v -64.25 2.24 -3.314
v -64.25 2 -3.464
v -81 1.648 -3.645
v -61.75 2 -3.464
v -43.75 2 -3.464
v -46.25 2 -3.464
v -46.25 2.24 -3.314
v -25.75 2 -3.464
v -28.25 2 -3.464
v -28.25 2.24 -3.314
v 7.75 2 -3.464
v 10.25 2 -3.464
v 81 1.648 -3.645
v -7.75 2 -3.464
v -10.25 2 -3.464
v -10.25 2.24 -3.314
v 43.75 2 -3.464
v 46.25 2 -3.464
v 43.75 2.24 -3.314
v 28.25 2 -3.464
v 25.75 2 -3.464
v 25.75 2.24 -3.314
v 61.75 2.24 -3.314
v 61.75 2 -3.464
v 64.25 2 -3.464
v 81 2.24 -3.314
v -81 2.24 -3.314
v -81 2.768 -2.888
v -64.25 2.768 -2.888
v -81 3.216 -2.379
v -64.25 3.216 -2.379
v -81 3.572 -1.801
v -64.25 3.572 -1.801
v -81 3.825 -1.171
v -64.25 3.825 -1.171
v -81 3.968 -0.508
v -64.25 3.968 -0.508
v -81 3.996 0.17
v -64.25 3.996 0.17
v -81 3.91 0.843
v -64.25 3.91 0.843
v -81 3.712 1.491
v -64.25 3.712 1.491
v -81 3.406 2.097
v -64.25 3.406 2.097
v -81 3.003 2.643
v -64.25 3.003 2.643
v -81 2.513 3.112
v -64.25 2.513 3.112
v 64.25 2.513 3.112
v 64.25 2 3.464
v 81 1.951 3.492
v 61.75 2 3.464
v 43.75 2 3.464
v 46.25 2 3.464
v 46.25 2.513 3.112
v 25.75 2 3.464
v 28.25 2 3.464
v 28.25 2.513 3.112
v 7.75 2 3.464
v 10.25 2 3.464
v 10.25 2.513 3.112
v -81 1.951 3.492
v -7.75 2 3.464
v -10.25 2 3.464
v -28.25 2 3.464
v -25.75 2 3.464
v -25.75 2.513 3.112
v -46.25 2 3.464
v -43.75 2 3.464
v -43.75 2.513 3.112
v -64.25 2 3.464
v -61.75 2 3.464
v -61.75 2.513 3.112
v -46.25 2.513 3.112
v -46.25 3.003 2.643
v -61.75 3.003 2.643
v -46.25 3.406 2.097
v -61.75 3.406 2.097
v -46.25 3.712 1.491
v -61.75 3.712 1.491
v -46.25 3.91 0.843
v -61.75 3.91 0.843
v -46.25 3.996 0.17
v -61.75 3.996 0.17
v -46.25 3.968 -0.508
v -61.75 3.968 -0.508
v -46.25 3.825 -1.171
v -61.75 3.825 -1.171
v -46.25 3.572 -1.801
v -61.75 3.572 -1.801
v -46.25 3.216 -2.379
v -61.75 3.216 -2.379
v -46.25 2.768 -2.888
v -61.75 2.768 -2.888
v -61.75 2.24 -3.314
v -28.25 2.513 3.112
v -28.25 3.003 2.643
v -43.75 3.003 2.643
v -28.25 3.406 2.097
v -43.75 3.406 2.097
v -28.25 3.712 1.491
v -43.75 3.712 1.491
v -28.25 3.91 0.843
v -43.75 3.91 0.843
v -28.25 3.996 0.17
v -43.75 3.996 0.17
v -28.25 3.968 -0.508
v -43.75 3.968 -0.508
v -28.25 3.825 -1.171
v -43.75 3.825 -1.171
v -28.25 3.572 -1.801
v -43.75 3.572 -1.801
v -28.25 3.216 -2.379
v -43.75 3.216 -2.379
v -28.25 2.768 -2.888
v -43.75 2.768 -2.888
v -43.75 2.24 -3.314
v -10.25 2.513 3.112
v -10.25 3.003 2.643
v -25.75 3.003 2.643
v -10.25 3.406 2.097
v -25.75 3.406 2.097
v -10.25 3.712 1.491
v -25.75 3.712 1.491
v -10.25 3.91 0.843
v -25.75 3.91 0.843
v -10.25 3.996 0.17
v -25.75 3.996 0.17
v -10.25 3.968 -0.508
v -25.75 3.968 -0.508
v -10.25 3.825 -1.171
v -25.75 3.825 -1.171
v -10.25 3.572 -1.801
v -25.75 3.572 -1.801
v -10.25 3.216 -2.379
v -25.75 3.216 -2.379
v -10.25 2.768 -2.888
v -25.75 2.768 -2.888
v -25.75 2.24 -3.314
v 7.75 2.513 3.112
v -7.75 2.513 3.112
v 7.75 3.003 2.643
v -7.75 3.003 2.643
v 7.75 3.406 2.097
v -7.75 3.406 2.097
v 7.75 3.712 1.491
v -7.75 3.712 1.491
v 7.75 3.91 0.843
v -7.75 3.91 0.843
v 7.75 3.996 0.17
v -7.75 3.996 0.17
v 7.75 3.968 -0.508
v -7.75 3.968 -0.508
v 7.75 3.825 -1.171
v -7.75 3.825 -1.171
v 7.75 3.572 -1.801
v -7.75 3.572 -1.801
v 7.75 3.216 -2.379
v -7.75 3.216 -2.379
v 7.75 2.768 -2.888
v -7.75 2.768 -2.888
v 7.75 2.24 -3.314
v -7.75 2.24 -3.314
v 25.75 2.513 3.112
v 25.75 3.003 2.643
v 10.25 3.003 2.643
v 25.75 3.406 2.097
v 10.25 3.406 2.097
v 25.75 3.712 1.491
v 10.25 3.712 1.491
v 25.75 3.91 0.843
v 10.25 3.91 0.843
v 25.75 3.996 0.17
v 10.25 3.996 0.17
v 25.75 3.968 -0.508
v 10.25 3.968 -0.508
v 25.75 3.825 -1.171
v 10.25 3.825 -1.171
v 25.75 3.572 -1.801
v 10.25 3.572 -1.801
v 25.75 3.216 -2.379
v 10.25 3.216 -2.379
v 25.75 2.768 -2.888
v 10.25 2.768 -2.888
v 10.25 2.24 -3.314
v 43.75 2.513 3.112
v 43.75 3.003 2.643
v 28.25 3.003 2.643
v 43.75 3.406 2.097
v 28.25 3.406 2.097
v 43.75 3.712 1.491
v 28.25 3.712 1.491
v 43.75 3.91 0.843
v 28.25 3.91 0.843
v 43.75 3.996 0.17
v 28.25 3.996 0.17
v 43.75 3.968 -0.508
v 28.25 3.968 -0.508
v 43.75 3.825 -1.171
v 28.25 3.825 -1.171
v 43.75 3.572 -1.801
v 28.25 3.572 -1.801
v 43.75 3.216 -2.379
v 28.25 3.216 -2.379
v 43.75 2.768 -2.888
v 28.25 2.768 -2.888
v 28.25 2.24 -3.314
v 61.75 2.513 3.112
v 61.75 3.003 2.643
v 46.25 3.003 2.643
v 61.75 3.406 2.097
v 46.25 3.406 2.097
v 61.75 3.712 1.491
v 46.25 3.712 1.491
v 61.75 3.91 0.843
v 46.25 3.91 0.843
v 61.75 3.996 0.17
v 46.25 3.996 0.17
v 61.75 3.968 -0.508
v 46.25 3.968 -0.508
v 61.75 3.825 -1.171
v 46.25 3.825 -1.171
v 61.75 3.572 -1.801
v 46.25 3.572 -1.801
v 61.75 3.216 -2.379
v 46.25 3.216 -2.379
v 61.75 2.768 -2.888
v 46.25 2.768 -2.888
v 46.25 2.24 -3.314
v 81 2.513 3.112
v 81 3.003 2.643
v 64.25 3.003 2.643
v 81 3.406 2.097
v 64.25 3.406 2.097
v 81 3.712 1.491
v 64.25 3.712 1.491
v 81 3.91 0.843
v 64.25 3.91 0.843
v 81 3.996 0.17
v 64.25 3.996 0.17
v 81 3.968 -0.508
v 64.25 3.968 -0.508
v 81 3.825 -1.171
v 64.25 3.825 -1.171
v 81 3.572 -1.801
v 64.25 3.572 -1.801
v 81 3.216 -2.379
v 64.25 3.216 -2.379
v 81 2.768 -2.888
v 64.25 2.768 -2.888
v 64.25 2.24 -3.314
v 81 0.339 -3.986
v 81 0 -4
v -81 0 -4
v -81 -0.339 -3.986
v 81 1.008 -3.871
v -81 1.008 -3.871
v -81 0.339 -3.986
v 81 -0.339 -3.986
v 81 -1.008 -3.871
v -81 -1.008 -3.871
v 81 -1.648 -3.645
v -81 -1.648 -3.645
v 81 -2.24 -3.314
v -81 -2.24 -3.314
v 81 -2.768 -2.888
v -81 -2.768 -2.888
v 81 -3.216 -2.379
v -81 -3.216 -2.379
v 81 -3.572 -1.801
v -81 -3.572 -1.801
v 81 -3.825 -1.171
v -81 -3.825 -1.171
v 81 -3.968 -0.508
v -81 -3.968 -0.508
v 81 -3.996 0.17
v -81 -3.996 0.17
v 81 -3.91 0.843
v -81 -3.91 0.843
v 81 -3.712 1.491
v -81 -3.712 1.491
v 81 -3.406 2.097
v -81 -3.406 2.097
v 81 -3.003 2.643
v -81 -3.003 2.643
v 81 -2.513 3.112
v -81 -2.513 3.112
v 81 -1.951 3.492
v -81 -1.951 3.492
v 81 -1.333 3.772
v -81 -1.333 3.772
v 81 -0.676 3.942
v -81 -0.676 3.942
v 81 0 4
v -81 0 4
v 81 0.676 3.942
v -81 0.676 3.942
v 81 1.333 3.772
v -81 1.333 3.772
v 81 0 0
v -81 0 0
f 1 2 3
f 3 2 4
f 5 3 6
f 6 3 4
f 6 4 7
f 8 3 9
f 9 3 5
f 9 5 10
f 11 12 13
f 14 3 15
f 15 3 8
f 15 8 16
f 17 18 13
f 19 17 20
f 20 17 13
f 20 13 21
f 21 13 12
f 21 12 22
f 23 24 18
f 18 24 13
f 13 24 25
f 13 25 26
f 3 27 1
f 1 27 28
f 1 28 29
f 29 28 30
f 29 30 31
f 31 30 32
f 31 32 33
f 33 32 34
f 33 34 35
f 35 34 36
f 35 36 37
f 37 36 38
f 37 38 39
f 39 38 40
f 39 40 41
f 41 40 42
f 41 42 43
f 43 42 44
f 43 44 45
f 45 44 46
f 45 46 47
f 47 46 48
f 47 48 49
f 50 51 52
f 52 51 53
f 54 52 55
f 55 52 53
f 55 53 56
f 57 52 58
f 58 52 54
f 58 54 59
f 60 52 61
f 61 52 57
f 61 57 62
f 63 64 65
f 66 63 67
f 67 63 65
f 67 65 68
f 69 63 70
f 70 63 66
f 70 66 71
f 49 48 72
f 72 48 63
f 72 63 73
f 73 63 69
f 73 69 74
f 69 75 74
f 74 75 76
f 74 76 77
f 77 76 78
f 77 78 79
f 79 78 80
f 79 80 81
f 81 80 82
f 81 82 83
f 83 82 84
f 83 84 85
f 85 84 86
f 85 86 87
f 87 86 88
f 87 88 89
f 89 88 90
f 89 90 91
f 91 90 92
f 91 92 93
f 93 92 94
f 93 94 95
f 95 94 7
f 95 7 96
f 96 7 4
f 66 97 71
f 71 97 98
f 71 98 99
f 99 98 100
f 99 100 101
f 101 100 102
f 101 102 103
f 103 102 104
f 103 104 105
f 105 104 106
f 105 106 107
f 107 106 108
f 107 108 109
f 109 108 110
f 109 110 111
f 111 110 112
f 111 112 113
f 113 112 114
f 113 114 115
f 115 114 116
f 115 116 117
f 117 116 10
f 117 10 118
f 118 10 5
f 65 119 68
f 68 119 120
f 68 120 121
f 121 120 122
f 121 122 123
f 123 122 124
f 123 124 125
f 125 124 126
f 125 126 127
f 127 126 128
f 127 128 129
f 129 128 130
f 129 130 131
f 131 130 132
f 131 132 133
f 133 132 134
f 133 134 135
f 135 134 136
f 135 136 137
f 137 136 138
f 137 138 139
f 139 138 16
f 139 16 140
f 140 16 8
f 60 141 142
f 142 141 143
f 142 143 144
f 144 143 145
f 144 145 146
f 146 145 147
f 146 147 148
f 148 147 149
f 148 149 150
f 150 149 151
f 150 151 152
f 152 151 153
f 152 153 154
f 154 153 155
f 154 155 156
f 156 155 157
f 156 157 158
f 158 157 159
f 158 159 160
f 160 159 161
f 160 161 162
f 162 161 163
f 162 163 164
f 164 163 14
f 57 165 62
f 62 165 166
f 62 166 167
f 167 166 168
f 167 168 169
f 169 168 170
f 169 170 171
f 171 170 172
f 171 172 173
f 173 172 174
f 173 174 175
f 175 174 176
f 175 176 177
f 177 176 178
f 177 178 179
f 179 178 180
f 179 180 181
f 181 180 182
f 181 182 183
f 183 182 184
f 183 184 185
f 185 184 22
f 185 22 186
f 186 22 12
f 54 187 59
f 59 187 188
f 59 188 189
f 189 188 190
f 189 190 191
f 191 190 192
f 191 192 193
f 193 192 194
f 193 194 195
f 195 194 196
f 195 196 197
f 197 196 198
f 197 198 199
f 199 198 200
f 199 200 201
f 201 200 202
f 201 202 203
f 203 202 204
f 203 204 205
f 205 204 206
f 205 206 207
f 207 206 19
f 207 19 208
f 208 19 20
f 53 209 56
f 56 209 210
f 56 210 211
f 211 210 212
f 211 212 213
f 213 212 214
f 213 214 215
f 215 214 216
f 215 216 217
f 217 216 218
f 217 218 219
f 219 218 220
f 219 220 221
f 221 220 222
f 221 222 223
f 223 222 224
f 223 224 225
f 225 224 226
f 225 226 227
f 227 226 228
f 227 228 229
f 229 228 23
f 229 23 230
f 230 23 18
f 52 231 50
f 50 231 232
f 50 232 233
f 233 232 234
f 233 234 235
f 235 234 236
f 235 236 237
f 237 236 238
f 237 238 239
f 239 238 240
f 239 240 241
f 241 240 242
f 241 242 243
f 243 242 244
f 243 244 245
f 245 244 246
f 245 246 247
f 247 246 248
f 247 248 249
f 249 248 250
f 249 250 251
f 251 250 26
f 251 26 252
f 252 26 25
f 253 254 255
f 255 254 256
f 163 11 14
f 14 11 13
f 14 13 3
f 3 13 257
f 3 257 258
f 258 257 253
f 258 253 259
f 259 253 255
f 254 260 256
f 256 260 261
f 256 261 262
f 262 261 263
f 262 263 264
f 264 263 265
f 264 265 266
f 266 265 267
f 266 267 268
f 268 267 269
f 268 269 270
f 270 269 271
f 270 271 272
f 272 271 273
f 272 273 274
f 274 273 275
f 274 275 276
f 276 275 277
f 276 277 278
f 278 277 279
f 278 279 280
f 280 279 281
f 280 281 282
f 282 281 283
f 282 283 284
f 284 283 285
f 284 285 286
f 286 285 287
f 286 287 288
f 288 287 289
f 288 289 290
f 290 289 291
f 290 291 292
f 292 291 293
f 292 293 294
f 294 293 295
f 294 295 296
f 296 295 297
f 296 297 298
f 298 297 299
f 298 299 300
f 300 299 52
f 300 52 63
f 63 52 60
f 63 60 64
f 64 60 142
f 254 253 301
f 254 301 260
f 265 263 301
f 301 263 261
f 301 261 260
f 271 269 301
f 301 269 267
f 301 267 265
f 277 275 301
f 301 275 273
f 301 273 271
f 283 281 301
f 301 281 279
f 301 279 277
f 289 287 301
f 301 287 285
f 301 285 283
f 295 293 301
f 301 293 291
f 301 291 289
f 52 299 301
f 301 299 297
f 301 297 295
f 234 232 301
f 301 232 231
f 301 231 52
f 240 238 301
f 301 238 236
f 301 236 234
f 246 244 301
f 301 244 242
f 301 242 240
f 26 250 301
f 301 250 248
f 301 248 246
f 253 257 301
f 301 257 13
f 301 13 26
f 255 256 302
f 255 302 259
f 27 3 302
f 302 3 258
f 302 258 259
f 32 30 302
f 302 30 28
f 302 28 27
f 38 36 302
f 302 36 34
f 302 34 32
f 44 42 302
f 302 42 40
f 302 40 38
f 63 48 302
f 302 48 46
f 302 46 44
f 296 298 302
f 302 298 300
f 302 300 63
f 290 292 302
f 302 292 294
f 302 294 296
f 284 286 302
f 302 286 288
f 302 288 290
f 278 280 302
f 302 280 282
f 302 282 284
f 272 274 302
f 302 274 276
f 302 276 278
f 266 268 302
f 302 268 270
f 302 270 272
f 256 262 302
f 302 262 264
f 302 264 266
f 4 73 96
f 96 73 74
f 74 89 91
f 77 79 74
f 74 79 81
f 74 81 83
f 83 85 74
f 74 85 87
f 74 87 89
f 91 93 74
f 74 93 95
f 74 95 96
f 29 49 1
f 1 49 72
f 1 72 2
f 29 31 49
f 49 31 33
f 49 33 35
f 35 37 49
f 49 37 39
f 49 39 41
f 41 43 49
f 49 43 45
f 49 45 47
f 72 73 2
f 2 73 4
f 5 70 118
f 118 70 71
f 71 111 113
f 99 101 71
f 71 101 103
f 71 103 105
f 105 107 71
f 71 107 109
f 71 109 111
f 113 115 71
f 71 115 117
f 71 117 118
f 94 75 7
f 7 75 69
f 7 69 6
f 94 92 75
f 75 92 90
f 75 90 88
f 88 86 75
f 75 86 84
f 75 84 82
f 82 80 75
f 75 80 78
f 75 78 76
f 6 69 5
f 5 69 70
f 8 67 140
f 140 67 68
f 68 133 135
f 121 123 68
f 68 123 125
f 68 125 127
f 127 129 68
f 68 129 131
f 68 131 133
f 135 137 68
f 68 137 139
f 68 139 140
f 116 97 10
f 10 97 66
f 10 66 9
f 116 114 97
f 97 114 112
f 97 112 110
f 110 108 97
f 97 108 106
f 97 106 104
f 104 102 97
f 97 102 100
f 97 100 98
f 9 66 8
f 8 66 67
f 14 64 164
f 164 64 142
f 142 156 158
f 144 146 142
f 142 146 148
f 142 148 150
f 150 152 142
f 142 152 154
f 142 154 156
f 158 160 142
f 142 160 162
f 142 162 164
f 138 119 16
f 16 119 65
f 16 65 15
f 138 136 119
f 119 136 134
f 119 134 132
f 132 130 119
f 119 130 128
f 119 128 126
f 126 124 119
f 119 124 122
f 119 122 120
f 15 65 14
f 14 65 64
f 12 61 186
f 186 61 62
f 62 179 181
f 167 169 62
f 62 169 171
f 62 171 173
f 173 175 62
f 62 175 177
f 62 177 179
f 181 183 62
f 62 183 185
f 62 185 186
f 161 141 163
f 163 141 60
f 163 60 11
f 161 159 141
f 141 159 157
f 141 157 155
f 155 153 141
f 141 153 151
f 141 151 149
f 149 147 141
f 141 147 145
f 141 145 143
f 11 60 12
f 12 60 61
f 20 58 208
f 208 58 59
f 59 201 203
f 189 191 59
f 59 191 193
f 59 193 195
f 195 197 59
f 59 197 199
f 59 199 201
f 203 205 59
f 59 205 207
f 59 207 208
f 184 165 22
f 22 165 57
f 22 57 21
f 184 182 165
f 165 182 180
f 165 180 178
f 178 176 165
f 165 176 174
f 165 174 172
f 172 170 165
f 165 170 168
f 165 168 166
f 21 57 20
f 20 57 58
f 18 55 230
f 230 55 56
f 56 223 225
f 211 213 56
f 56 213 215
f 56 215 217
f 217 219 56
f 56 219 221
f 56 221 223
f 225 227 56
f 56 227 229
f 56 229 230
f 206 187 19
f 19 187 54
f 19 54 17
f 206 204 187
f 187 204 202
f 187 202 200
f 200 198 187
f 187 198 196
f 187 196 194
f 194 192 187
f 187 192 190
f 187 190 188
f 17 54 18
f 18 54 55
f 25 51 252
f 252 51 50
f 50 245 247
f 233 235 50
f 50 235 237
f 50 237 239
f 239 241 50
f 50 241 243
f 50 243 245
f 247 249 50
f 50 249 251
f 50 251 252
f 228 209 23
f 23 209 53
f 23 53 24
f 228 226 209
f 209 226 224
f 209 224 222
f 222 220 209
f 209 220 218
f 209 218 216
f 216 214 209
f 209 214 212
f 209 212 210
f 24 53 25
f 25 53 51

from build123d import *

# Parameters (mm, degrees)
SKETCH2_R           = 4
BOSS_EXTRUDE1_DEPTH = 81
CUT_EXTRUDE1_START  = 2
SKETCH3_W           = 2.5
SKETCH3_H           = 8
CUT_EXTRUDE1_DEPTH  = 10


with BuildPart() as part:
    # Sketch2 → Boss-Extrude1 (new, symmetric)
    with BuildSketch(Plane(origin=(0, 0, 0), x_dir=(0, 0, -1), z_dir=(1, 0, 0))):
        Circle(SKETCH2_R)
    extrude(amount=BOSS_EXTRUDE1_DEPTH, both=True)

    # Sketch3 → Cut-Extrude1 (cut)
    with BuildSketch(Plane(origin=(0, 0, 0), x_dir=(1, 0, 0), z_dir=(0, 1, 0)).offset(CUT_EXTRUDE1_START)):
        with Locations((-63, 0)):
            Rectangle(SKETCH3_W, SKETCH3_H)
        with Locations((-45, 0)):
            Rectangle(SKETCH3_W, SKETCH3_H)
        with Locations((-27, 0)):
            Rectangle(SKETCH3_W, SKETCH3_H)
        with Locations((-9, 0)):
            Rectangle(SKETCH3_W, SKETCH3_H)
        with Locations((9, 0)):
            Rectangle(SKETCH3_W, SKETCH3_H)
        with Locations((27, 0)):
            Rectangle(SKETCH3_W, SKETCH3_H)
        with Locations((45, 0)):
            Rectangle(SKETCH3_W, SKETCH3_H)
        with Locations((63, 0)):
            Rectangle(SKETCH3_W, SKETCH3_H)
    extrude(amount=CUT_EXTRUDE1_DEPTH, mode=Mode.SUBTRACT)


solid = part.part
